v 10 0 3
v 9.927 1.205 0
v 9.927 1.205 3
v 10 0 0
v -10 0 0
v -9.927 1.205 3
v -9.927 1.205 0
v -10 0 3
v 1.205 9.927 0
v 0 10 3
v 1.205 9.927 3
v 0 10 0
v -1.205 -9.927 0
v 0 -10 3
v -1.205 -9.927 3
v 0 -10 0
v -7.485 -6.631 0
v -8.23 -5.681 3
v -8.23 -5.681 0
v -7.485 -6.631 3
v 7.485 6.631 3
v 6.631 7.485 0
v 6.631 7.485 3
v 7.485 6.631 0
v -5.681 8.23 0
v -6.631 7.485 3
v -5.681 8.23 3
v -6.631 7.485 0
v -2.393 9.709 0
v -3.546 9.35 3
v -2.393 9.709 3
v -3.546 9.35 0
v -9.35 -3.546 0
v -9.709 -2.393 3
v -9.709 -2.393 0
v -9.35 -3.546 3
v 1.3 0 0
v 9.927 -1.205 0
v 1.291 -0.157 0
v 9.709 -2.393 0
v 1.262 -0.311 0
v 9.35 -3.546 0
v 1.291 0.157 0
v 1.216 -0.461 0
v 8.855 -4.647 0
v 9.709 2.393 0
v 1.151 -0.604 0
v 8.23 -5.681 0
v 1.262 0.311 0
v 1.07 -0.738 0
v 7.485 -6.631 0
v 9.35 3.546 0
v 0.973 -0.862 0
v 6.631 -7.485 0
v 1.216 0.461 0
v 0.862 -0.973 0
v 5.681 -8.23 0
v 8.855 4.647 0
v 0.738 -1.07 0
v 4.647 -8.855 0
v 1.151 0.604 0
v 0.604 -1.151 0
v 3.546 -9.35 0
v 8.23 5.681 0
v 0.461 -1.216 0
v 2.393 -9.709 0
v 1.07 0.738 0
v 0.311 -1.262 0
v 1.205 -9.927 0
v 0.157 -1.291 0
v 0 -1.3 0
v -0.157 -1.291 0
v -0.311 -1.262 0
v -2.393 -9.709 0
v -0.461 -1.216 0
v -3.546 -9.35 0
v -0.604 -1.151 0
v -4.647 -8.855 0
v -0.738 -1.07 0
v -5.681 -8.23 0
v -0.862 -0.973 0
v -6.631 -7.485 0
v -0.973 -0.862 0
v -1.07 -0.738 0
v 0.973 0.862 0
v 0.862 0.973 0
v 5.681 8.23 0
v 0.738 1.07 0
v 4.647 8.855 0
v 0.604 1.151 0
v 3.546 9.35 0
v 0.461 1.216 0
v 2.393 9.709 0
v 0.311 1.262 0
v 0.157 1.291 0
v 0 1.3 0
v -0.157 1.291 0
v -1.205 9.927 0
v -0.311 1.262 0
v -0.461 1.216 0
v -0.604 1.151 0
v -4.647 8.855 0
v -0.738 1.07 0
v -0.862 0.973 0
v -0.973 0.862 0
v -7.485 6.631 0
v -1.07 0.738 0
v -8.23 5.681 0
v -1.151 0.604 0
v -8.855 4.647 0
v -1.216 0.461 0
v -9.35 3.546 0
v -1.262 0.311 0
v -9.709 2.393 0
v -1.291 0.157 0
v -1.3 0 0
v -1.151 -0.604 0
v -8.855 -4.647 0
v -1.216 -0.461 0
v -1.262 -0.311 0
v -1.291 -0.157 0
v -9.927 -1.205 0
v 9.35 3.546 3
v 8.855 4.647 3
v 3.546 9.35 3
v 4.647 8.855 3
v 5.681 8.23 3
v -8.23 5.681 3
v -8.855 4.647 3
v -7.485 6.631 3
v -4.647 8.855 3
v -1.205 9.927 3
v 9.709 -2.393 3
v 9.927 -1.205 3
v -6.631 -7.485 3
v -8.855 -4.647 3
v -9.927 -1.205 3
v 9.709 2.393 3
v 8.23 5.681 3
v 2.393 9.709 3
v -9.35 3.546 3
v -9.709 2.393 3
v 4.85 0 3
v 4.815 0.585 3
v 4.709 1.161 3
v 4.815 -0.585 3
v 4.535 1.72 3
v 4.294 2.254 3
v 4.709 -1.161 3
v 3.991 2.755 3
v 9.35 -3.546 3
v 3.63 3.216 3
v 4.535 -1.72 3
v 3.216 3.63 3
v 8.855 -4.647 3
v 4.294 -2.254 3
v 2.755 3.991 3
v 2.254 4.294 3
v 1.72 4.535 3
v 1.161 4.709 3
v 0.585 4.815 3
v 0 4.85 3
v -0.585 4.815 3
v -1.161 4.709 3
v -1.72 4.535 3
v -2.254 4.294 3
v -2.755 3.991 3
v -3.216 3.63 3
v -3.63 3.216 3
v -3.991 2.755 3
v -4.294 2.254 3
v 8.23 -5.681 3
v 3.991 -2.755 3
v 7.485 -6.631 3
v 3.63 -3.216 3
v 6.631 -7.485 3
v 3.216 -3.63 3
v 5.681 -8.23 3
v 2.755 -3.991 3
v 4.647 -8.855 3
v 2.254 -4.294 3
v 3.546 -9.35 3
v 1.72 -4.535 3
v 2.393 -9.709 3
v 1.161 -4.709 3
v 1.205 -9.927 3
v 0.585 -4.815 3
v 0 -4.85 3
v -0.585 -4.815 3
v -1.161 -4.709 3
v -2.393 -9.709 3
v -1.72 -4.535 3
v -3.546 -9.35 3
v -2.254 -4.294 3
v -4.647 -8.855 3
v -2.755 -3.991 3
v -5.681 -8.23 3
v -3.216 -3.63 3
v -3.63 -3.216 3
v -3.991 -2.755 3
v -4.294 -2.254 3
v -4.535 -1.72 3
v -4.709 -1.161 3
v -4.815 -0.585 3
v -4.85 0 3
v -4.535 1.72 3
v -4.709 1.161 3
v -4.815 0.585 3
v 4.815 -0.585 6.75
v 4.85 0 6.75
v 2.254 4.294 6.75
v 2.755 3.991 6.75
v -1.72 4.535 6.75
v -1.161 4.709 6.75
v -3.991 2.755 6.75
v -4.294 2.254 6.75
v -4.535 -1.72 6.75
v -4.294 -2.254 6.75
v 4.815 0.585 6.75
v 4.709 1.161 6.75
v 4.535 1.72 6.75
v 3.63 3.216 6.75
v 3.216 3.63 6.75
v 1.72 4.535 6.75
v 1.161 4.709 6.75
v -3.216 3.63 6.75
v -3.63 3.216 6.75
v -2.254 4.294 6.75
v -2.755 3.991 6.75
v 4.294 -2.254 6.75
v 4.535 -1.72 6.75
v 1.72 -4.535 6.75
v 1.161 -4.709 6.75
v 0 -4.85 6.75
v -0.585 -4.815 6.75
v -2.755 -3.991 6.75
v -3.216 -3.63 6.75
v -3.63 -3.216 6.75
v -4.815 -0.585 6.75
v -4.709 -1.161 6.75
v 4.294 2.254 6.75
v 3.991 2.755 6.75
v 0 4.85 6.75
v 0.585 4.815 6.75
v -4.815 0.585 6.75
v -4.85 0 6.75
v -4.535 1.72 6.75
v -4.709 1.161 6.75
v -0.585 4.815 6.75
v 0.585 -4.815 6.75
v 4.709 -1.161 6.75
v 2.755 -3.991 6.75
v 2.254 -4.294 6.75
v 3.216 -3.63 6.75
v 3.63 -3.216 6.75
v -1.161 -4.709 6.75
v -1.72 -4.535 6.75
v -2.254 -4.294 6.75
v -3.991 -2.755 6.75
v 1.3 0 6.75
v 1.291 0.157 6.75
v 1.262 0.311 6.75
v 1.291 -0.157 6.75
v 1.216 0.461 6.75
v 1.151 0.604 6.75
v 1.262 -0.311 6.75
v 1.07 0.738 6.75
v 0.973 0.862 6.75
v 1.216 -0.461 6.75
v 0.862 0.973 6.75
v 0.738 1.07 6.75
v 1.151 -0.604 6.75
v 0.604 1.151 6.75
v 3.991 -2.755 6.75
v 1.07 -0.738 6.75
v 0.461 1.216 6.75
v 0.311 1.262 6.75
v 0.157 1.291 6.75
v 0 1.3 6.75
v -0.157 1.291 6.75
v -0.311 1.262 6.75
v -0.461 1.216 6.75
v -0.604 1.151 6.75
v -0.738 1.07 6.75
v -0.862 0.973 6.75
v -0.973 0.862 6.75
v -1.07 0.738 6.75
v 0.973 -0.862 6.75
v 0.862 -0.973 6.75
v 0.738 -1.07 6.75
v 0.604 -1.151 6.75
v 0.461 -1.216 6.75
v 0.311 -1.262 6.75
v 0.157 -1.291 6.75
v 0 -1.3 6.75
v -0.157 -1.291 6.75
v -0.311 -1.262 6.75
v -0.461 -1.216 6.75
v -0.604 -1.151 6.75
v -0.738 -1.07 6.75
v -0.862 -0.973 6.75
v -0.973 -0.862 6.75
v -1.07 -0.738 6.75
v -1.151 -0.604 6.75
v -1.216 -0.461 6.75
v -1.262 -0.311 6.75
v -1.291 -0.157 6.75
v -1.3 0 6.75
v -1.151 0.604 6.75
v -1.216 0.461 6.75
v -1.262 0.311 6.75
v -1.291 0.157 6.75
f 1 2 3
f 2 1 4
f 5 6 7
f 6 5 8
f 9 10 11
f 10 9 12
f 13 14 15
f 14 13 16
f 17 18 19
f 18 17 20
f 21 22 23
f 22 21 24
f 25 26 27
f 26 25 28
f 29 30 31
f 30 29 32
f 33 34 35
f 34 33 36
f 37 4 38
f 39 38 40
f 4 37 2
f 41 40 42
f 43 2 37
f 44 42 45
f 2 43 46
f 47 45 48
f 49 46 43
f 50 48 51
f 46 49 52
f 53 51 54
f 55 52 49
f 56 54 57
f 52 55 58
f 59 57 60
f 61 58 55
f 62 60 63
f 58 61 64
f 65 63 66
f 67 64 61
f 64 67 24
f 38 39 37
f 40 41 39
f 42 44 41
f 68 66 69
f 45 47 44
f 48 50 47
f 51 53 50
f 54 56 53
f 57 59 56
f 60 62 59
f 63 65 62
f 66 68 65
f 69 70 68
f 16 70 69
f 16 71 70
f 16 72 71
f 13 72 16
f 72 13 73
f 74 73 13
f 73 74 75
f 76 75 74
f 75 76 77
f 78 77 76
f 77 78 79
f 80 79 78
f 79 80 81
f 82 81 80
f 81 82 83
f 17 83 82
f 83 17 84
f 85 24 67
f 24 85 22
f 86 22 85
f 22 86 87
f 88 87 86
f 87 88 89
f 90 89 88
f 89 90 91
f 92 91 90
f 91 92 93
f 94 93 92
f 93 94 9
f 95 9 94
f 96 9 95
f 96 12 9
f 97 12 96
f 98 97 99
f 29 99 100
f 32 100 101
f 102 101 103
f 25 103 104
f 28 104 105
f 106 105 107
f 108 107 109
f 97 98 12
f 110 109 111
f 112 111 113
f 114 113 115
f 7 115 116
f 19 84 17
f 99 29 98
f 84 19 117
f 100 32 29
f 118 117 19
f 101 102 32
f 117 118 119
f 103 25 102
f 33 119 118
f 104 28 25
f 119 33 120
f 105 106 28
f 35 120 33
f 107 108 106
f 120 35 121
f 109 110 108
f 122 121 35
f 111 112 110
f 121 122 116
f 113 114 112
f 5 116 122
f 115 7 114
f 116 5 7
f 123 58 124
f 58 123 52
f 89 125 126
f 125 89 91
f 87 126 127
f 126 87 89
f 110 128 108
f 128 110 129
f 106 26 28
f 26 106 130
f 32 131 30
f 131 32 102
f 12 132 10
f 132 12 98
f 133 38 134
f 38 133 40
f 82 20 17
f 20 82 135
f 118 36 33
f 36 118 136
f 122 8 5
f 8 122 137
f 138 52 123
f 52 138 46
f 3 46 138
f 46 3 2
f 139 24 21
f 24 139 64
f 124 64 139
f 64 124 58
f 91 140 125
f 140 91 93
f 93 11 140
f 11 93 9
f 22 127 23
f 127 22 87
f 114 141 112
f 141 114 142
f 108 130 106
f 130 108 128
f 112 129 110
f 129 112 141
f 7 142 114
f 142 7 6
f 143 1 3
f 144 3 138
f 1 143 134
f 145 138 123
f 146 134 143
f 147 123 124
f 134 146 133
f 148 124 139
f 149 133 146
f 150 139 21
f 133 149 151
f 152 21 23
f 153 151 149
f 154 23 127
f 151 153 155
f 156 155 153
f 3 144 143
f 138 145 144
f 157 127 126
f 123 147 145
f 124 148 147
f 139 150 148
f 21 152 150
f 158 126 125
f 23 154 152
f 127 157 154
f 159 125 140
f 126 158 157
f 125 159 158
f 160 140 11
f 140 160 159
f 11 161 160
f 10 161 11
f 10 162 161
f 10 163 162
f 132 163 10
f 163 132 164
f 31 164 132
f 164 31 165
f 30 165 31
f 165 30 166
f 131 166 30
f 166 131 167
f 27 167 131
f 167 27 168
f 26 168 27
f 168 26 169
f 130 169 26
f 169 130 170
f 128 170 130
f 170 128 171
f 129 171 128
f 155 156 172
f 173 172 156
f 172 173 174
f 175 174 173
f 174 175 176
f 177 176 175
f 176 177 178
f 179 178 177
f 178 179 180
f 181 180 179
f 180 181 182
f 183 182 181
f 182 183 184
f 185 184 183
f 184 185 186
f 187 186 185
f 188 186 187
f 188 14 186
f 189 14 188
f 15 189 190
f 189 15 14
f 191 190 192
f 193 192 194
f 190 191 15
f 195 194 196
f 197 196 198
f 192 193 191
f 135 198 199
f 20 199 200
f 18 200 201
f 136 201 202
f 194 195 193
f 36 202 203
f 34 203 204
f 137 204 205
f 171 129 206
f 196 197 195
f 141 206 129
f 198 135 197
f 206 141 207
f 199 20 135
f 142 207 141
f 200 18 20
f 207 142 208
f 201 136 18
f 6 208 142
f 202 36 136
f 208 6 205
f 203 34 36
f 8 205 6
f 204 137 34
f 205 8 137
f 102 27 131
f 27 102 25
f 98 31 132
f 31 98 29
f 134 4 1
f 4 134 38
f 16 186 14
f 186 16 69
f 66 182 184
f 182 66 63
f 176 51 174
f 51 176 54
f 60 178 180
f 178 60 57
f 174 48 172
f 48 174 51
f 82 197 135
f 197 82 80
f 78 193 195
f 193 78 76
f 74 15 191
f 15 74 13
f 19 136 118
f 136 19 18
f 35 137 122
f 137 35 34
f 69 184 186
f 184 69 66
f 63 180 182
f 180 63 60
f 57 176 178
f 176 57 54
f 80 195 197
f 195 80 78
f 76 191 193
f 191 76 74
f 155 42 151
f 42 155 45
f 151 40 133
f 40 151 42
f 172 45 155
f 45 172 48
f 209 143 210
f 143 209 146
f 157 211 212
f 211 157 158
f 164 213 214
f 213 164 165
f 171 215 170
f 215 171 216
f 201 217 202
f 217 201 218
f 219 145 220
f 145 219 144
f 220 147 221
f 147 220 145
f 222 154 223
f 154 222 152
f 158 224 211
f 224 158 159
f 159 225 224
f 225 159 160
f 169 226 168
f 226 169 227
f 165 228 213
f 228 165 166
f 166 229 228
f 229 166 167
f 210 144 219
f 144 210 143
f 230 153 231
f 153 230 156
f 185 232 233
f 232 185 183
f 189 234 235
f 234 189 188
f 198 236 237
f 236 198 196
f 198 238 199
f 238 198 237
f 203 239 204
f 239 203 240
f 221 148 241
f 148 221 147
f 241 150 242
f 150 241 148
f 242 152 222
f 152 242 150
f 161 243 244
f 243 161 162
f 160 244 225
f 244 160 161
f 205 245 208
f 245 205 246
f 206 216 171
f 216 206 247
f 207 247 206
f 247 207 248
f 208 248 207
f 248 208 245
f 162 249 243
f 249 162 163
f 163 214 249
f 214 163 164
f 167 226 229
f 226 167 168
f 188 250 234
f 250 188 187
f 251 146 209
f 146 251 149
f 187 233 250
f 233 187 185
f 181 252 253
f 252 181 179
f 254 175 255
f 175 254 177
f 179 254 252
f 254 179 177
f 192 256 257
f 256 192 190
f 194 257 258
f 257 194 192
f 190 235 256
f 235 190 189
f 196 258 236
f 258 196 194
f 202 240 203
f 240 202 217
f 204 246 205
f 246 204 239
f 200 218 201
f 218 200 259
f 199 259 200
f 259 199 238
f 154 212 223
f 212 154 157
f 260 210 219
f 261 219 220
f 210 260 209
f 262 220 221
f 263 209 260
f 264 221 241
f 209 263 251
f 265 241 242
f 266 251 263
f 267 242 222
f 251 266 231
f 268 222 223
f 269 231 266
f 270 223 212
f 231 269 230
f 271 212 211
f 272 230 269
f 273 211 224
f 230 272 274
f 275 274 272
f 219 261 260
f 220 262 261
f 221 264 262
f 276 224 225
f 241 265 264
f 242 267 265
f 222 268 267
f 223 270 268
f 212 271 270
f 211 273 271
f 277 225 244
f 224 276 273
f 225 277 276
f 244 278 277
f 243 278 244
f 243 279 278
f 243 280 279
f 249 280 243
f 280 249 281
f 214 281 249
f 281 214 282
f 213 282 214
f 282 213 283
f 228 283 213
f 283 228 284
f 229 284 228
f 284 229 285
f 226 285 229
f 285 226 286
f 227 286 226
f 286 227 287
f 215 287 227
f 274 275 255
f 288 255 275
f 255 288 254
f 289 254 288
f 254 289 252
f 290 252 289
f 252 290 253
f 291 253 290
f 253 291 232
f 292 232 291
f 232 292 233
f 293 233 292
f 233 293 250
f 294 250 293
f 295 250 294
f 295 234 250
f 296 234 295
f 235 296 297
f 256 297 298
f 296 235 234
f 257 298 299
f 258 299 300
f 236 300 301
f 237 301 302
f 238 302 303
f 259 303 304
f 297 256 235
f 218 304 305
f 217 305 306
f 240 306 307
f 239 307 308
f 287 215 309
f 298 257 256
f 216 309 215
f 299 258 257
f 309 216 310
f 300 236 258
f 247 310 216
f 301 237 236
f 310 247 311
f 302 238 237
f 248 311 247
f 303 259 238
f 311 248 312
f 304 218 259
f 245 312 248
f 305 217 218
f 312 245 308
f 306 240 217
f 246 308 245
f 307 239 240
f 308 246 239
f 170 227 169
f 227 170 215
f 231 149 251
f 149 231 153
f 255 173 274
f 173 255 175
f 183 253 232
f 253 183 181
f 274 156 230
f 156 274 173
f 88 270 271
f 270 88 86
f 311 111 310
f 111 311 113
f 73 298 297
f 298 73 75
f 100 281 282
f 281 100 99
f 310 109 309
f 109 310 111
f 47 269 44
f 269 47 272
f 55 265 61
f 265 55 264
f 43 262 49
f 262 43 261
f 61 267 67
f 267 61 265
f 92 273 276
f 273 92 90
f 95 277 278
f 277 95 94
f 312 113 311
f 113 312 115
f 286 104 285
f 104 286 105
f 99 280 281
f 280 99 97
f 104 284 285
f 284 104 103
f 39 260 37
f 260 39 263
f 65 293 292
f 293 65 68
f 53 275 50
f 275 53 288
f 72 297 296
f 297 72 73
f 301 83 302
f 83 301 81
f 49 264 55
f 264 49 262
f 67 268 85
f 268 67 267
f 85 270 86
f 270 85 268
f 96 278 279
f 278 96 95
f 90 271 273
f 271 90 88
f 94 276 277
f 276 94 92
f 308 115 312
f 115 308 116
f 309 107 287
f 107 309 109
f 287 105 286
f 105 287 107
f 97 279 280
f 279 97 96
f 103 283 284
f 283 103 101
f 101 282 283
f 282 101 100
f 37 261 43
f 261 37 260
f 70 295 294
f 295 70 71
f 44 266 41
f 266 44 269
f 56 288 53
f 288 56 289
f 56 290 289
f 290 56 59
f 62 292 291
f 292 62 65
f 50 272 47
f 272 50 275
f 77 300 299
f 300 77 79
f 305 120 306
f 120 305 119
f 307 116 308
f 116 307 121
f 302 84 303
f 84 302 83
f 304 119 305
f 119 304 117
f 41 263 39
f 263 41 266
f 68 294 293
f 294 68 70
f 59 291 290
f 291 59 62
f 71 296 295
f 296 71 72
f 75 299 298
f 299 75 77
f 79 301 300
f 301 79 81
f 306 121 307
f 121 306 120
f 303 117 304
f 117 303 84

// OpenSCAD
difference() 
{
    translate([0,0,0]) {
    color ("blue") translate([0,0,1.5]) cylinder(3,d=20,center=true,$fn=52); 
    color ("yellow") translate([0,0,4.5]) cylinder(4.5,d=9.7,center=true,$fn=52); 
    }
    color ("green") cylinder(30,d=2.6,center=true,$fn=52); 
}
